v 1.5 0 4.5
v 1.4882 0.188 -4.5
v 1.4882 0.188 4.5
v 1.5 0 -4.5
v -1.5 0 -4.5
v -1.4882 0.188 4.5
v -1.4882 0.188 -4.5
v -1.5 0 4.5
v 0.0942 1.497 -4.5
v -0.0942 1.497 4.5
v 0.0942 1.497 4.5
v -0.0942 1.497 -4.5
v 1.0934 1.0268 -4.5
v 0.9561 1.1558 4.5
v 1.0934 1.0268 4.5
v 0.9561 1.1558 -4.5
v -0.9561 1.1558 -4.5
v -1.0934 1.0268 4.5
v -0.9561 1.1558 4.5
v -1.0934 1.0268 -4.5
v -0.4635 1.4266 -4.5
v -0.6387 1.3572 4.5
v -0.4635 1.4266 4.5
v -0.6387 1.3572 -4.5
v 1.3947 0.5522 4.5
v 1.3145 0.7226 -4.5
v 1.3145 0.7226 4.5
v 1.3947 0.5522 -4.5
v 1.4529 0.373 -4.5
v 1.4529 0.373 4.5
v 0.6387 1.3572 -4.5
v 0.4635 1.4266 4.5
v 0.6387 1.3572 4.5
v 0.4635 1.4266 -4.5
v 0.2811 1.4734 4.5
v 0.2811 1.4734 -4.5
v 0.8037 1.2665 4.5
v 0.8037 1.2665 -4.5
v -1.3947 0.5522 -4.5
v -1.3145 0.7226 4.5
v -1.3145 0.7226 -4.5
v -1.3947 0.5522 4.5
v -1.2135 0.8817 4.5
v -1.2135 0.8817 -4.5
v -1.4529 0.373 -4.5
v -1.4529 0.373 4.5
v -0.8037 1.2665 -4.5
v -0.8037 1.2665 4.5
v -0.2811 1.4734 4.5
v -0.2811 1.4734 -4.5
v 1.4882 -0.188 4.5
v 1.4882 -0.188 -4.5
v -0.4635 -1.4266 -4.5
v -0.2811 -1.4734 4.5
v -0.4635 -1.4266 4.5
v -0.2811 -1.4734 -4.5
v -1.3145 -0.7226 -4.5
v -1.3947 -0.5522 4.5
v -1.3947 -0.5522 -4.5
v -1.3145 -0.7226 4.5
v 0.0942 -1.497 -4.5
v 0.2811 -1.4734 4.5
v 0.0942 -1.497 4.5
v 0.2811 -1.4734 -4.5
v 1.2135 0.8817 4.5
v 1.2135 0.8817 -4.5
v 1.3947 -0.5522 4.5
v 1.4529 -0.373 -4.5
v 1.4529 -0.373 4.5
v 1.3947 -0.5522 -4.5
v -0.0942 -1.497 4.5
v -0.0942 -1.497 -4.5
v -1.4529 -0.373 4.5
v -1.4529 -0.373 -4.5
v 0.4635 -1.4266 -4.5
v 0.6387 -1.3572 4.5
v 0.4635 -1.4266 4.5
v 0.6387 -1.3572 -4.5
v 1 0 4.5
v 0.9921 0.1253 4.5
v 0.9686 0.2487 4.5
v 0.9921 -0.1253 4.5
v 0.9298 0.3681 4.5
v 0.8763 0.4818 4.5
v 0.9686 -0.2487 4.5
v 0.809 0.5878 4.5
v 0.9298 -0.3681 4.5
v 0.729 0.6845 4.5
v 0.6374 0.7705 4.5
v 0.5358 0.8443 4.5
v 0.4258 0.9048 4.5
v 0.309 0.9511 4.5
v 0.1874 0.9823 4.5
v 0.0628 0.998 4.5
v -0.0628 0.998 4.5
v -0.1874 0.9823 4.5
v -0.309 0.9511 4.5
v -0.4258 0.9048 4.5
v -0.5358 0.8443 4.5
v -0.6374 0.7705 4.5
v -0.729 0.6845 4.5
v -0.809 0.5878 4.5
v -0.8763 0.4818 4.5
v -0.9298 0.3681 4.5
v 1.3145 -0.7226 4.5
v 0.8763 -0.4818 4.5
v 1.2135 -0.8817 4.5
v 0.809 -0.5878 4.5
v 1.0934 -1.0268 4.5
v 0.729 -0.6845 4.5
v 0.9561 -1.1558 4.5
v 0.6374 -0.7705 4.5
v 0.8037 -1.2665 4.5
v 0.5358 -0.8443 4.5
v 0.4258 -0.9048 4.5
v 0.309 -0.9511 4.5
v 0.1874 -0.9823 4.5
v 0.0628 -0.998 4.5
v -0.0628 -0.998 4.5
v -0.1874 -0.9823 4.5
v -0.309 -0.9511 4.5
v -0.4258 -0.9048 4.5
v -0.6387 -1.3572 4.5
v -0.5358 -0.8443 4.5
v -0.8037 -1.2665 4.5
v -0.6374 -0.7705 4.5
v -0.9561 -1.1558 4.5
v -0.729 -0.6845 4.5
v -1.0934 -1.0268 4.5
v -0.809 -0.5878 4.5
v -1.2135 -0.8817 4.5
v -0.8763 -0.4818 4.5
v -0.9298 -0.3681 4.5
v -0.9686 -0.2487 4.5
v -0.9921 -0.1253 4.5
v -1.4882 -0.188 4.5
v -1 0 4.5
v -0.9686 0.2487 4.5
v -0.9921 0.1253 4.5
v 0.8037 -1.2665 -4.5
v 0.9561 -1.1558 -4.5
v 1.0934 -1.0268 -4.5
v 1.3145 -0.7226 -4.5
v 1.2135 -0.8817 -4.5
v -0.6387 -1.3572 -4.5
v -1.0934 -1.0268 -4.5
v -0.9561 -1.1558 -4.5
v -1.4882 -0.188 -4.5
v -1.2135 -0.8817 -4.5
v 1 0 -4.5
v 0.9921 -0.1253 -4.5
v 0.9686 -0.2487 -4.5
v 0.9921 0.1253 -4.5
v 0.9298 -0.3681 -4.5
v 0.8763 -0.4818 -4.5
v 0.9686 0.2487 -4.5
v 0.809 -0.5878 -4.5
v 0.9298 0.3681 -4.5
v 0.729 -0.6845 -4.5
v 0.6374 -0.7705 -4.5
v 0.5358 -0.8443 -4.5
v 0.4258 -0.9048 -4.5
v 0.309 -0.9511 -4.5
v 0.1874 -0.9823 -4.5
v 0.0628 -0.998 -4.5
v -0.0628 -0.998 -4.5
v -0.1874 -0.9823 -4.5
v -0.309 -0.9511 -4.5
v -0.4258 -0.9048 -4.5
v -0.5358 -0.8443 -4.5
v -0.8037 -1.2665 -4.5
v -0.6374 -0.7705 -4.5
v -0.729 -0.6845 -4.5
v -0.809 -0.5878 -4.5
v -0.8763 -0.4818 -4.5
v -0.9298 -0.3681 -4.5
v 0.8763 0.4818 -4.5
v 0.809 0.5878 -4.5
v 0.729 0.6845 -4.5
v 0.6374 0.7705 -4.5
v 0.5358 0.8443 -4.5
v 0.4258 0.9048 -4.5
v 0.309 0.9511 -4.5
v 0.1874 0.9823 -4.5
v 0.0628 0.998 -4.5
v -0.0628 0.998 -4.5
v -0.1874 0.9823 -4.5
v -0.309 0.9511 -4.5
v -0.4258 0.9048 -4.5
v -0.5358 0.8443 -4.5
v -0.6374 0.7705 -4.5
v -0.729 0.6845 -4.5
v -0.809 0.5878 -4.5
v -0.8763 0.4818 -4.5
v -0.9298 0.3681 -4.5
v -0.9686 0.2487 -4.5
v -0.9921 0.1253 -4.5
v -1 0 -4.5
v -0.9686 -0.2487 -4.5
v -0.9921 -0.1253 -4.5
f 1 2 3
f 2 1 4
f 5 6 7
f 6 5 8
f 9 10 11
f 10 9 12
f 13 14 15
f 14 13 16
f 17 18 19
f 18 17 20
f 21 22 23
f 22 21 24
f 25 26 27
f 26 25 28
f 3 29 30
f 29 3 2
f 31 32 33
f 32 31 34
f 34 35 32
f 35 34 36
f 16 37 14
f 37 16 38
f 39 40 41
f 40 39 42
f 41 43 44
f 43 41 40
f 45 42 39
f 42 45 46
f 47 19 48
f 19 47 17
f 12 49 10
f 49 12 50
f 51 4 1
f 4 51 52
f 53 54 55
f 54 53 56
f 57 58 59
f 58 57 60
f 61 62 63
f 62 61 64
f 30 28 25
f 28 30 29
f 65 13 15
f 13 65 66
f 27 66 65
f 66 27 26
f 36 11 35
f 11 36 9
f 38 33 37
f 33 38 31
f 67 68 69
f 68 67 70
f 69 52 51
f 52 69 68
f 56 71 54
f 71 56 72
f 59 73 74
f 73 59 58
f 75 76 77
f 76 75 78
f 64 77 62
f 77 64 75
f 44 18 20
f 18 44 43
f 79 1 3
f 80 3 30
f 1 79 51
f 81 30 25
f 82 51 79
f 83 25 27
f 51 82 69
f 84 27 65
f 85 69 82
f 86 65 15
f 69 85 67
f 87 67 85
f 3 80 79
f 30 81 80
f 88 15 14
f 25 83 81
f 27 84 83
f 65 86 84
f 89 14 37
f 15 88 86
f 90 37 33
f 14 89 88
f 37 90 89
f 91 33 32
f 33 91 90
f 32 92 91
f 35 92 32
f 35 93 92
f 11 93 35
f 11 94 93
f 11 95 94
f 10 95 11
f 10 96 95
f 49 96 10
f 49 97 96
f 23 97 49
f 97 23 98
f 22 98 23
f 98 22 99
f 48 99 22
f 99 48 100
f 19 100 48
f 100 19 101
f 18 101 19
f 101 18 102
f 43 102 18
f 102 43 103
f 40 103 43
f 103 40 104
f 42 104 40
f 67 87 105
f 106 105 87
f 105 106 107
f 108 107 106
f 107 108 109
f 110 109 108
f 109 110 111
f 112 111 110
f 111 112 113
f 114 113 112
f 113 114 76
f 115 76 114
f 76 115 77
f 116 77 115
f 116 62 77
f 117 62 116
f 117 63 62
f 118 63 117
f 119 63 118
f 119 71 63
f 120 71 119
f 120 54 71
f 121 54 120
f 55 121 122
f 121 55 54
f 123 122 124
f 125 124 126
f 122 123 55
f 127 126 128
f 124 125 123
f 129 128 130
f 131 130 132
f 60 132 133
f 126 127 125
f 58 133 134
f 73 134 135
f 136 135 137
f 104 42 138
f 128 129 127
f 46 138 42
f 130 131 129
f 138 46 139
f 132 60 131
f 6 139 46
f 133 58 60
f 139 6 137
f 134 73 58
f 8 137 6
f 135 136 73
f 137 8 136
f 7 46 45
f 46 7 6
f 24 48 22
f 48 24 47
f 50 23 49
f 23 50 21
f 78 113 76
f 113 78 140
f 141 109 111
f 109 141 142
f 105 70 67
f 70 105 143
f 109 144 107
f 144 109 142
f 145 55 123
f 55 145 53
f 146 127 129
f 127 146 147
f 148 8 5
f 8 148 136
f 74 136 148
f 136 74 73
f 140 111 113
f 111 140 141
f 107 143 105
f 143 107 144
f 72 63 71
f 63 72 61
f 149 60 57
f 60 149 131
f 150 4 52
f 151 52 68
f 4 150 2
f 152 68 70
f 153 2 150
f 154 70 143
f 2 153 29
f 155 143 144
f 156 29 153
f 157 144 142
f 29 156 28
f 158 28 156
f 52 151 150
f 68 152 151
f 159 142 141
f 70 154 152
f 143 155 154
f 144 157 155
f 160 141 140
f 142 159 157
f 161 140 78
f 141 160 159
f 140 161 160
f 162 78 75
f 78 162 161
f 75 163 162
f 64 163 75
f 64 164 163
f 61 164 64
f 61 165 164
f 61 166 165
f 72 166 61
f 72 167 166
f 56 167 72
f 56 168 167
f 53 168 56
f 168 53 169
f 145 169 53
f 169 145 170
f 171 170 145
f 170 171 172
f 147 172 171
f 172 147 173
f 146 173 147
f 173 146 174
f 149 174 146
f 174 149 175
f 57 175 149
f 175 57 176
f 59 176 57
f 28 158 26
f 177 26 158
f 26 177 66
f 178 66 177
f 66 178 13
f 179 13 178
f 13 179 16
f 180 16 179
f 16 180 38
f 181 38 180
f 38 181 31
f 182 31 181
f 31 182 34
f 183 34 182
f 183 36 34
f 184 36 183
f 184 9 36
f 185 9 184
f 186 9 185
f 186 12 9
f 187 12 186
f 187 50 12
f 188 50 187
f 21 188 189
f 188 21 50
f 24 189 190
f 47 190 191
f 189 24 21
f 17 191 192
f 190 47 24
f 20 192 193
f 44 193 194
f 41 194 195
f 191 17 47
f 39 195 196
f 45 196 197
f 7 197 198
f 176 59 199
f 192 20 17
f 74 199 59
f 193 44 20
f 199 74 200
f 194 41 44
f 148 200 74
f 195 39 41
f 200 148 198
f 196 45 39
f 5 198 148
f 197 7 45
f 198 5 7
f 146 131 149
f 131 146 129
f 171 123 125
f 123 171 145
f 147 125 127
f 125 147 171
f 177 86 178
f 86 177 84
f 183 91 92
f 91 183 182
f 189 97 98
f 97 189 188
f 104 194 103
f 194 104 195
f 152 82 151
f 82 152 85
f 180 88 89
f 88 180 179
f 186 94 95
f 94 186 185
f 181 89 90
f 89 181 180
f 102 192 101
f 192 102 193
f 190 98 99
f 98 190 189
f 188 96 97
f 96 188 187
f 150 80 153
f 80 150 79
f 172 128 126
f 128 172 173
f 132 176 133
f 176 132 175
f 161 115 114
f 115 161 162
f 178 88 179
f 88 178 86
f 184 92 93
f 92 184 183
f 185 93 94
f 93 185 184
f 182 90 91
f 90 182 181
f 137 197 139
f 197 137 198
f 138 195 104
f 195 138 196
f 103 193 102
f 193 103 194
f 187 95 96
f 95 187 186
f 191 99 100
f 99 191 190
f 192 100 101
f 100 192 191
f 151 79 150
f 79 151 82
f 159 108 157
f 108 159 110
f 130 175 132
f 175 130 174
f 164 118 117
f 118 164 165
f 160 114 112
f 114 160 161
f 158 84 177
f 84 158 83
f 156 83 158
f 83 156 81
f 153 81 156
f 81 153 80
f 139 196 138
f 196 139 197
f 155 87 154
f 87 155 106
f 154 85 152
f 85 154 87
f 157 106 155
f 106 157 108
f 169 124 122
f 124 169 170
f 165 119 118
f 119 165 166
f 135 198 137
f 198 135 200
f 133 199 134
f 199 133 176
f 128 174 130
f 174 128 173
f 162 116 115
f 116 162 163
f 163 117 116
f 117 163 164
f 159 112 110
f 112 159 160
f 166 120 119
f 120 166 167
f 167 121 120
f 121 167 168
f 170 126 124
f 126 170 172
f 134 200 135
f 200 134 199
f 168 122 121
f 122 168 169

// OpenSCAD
$fn = 50;


difference() {
	union() {
		translate(v = [0, 0, -4.5000000000]) {
			cylinder(h = 9, r = 1.5000000000);
		}
	}
	union() {
		translate(v = [0, 0, -100.0000000000]) {
			cylinder(h = 200, r = 1.0000000000);
		}
	}
}
